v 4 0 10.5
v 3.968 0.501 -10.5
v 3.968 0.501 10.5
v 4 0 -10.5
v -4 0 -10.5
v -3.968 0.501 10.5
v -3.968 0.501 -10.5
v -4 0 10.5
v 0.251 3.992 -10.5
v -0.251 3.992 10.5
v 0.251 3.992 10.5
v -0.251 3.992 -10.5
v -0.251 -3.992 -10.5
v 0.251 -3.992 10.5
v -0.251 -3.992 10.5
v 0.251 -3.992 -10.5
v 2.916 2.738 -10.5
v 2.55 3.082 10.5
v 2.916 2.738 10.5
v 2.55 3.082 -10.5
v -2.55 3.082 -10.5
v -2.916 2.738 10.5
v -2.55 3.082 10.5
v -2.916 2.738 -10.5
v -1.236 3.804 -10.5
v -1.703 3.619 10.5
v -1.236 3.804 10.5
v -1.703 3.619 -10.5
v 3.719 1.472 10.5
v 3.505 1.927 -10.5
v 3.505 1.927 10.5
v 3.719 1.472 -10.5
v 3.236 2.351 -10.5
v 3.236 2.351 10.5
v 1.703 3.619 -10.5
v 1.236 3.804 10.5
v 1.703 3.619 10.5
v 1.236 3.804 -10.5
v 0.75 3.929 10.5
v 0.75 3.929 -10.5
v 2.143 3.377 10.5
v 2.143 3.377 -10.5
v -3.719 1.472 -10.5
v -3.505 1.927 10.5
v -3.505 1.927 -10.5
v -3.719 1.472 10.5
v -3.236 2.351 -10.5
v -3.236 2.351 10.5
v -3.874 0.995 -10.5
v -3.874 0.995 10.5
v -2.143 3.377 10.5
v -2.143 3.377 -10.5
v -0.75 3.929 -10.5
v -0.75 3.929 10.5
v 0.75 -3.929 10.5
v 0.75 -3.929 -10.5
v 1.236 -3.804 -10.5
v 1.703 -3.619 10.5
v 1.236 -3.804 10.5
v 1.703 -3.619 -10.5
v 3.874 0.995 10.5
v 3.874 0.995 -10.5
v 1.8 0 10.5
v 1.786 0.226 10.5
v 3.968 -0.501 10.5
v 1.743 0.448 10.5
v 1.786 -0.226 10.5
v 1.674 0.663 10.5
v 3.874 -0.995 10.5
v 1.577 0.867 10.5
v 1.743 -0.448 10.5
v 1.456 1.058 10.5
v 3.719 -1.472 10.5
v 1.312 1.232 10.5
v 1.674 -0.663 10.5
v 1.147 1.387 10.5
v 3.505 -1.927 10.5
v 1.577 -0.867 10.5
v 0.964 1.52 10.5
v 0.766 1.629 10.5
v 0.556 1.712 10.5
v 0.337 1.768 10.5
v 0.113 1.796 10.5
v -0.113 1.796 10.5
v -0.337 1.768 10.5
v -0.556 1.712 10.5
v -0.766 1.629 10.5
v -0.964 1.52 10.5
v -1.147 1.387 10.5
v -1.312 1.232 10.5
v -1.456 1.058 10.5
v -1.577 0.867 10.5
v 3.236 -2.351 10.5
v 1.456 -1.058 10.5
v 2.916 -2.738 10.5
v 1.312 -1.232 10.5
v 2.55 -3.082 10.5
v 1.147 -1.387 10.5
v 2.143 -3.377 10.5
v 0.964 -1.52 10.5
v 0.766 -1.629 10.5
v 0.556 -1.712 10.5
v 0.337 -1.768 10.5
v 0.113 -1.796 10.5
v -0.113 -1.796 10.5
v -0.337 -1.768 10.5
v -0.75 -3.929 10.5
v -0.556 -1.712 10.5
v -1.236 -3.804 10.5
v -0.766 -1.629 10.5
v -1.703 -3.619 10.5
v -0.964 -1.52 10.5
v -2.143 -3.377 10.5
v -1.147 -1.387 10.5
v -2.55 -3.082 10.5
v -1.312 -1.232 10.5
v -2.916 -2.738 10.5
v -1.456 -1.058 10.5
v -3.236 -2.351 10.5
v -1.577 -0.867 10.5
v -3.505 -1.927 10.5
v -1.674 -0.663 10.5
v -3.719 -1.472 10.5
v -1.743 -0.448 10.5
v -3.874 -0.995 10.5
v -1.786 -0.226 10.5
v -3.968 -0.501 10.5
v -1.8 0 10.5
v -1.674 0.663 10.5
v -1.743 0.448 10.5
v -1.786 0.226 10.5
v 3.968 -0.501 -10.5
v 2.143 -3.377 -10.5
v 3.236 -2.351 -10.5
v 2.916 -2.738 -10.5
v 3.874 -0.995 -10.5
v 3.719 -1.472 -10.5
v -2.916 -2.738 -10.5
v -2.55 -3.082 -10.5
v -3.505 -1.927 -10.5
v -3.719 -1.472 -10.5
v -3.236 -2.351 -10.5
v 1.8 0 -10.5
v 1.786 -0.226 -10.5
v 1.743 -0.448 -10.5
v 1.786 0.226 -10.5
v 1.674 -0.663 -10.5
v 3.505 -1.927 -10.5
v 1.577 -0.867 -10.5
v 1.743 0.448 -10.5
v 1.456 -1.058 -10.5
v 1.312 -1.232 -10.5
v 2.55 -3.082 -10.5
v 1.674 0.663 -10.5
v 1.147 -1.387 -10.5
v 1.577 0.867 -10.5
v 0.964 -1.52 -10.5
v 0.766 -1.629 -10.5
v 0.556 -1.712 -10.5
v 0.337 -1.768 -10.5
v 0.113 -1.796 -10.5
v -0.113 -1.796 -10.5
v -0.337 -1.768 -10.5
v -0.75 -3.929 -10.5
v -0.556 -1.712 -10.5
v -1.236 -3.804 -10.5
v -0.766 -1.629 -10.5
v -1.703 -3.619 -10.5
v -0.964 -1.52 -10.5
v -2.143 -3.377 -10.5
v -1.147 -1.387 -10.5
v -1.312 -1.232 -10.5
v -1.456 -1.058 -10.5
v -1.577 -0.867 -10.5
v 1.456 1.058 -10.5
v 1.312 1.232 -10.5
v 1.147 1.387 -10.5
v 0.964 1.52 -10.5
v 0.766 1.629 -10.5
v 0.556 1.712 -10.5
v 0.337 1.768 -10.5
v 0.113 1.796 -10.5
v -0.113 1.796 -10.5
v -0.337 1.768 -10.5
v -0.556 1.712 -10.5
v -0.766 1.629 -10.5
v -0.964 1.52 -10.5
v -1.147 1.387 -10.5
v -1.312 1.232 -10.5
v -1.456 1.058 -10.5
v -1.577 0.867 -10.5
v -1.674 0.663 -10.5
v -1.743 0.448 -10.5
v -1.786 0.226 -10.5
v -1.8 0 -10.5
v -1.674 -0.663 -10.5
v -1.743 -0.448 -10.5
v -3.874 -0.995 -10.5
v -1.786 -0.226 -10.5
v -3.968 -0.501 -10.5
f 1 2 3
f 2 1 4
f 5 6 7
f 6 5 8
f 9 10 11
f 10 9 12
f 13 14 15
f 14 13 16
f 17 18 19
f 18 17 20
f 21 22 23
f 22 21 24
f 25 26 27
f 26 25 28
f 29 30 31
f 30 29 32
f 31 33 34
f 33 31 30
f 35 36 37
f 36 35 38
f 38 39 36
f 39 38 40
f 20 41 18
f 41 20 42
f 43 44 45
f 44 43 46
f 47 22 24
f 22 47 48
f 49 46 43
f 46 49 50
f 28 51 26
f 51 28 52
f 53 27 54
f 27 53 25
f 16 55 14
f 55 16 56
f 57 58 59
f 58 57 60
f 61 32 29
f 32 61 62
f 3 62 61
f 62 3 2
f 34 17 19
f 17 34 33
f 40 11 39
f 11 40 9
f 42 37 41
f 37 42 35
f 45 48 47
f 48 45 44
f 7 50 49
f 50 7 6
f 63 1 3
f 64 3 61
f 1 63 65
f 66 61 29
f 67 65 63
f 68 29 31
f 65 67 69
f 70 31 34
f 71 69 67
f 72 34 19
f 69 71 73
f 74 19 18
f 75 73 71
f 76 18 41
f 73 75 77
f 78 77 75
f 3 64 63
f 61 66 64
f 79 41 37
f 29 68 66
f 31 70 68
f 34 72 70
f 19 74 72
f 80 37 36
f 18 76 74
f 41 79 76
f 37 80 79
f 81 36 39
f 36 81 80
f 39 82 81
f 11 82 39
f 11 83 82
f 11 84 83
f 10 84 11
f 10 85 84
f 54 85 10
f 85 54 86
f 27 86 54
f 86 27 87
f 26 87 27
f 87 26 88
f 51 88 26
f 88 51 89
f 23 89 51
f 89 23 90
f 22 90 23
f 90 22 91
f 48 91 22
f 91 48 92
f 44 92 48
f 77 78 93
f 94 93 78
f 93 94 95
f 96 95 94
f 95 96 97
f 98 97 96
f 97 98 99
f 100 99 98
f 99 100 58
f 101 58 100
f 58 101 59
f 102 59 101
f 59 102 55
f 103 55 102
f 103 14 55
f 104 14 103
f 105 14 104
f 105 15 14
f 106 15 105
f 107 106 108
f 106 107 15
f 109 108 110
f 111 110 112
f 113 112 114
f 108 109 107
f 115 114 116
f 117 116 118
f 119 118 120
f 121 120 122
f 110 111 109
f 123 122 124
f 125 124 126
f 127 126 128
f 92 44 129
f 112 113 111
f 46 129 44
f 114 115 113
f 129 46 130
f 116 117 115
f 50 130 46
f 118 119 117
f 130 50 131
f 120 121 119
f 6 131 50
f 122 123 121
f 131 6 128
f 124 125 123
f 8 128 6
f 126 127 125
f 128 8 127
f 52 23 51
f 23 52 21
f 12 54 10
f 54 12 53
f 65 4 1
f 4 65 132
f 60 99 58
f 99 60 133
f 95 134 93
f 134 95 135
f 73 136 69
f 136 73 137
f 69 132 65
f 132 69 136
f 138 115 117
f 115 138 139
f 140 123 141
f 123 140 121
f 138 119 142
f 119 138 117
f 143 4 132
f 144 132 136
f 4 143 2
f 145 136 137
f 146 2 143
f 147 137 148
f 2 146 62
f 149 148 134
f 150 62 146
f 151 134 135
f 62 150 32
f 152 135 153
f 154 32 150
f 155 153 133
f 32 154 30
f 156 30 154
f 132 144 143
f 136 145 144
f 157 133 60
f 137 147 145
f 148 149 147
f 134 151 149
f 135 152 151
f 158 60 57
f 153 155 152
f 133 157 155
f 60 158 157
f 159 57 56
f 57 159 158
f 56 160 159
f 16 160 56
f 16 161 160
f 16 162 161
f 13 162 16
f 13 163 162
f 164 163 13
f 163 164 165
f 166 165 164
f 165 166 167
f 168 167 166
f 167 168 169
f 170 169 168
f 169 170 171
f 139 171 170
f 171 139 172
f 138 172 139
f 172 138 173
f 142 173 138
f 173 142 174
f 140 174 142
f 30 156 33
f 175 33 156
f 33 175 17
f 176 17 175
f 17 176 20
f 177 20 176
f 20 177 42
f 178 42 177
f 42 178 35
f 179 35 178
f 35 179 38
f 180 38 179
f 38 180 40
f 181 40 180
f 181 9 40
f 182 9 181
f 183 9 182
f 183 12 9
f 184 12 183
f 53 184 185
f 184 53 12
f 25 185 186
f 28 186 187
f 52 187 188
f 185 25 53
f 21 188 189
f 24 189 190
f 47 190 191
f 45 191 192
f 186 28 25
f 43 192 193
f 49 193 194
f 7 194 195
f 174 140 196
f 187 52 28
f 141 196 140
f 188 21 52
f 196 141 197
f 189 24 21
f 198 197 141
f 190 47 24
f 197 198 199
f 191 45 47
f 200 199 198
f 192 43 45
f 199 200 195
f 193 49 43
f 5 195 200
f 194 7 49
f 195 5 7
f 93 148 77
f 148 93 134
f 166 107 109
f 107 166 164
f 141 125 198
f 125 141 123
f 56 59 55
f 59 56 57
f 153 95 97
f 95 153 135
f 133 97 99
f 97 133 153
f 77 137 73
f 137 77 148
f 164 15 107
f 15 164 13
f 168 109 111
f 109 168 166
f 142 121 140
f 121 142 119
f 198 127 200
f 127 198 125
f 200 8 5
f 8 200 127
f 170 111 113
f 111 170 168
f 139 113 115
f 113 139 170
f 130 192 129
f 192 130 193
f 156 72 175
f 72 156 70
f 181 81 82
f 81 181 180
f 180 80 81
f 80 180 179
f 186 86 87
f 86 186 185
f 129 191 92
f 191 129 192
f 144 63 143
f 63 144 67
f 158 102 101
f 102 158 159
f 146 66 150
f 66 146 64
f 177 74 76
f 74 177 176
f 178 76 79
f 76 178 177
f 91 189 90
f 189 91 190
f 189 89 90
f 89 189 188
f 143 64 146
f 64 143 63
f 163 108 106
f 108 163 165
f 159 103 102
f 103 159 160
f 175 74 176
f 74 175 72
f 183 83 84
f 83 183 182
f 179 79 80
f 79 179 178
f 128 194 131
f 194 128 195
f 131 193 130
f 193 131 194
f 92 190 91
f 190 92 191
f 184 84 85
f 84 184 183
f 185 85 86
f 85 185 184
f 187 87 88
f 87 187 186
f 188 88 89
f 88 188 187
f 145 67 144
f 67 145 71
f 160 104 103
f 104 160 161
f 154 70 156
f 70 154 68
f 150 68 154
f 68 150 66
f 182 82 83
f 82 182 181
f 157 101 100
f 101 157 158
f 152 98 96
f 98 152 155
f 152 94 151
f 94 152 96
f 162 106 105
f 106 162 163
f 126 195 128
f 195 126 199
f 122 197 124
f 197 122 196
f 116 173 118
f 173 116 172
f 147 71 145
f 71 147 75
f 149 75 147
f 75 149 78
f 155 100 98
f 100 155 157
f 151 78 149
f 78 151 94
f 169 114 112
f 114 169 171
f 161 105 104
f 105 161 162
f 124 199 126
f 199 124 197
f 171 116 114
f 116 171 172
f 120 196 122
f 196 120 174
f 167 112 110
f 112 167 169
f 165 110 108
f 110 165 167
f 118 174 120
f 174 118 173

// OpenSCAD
$fn = 50;


difference() {
	union() {
		translate(v = [0, 0, -10.5000000000]) {
			cylinder(h = 21, r = 4.0000000000);
		}
	}
	union() {
		translate(v = [0, 0, -100.0000000000]) {
			cylinder(h = 200, r = 1.8000000000);
		}
	}
}
